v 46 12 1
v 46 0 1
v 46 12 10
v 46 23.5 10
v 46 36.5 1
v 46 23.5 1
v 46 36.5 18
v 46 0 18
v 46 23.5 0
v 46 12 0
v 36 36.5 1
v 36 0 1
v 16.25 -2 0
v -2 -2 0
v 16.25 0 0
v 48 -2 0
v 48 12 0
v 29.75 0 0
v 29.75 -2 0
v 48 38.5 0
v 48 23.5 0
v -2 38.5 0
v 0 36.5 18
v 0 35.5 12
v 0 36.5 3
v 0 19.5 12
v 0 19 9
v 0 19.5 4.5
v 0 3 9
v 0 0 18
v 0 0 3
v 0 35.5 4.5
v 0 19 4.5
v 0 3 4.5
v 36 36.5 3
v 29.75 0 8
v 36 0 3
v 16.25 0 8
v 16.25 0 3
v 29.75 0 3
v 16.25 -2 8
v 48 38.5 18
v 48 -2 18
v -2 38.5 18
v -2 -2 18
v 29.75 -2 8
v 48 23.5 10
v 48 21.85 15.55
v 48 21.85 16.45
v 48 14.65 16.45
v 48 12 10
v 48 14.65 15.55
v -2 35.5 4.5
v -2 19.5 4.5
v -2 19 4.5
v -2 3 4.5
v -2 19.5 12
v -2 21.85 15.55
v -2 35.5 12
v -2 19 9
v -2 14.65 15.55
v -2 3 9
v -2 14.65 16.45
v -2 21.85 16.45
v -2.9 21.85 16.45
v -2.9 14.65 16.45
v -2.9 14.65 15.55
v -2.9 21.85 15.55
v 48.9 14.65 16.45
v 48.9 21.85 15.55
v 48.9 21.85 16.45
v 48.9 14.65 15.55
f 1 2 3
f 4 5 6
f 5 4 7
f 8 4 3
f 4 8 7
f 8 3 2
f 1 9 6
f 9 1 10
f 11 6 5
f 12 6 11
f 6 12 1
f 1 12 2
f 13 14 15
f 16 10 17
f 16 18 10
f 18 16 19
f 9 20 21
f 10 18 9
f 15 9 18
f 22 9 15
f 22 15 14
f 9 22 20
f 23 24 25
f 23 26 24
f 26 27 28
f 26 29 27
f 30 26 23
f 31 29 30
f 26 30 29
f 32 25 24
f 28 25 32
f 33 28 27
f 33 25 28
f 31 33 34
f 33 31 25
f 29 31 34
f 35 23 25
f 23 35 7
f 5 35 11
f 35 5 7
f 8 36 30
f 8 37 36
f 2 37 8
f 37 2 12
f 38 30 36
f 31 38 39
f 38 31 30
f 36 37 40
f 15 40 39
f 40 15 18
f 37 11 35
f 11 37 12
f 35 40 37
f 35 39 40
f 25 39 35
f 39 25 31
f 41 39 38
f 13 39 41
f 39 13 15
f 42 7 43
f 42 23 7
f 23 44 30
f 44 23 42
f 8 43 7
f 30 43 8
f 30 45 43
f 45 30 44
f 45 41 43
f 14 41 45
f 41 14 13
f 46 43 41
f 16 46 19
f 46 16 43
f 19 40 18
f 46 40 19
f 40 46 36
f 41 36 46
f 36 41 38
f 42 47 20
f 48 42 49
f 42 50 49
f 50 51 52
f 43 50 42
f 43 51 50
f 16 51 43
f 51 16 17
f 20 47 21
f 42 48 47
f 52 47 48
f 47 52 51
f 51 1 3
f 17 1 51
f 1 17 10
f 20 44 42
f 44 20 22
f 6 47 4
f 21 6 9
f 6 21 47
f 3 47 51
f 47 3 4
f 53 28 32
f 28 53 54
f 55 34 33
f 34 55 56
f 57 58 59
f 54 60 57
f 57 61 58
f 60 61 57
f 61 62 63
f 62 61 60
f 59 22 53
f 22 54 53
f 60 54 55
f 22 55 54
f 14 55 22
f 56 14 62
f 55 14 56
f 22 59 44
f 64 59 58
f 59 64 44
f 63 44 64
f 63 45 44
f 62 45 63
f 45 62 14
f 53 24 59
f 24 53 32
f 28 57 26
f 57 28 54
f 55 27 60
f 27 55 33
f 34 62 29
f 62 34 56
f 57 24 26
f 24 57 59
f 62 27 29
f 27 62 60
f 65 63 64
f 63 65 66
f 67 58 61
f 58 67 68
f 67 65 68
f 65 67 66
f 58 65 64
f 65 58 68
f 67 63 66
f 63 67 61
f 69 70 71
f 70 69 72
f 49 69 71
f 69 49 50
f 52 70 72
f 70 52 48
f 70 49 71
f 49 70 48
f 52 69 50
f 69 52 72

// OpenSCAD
// file: mp3_board_box_lid_dimensions.scad
board_with_card_w = 51.25;
// board_only_w is circut board only, not including protusion of USB port and microSD slot.
board_only_w = 46;
board_l = 36.5;
board_h = 1.5;

floor_below_posts = 1;
post_area_w = 10;

wall_thickness = 2;

// Wall height starts at bottom surface of board
wall_height = 15;

wall_height_full = wall_height + floor_below_posts + wall_thickness;

front_left_wall_w = 16.25;
front_right_wall_w = 16.25;
micro_usb_opening_h = 8;

right_front_wall_w = 12;
right_back_wall_w = 13;
headphone_jack_opening_h = 7;

left_front_wall_w = 3;
left_back_wall_w = 1;
usb_opening_w = 16;
usb_opening_h = 9;
microsd_opening_w = 16;
microsd_opening_h = 6;

lid_lip_h = 4;

bump_w = 1;
bump_l = 8;
bump_h = 1;
// main file
// Speaker connector posts stick down below board 2mm.

include <mp3_board_box_lid_dimensions.scad>;

// floor entire board including post area
cube([board_only_w, board_l, floor_below_posts]);

// floor vertical extension in areas other than post area
translate([0, 0, floor_below_posts]) {
    color([1, 0, 0])
    cube([board_only_w - post_area_w, board_l, wall_thickness]);
}

// front (micro USB side)
// left side of micro USB (full wall)
translate([0, -wall_thickness, 0]) {
    cube([front_left_wall_w, wall_thickness, wall_height_full]);
}
// right side of micro USB (full wall)
translate([board_only_w - front_right_wall_w, -wall_thickness, 0]) {
    cube([front_right_wall_w, wall_thickness, wall_height_full]);
}
// front wall bridge above micro USB
translate([front_left_wall_w, 0 - wall_thickness, micro_usb_opening_h]) {
    cube([board_only_w - (front_right_wall_w + front_left_wall_w), wall_thickness,
        wall_height_full - micro_usb_opening_h]);
}

// right side (headphone jack side)
// left side of jack
translate([board_only_w, -wall_thickness, 0]) {
    cube([wall_thickness, right_front_wall_w + wall_thickness, wall_height_full]);
}
// right side of jack (full wall)
translate([board_only_w, board_l - right_back_wall_w, 0]) {
    cube([wall_thickness, right_back_wall_w + wall_thickness, wall_height_full]);
}
// bridge above headphone jack
translate([board_only_w, right_front_wall_w, headphone_jack_opening_h + wall_thickness + floor_below_posts]) {
    cube([wall_thickness, board_l - right_front_wall_w - right_back_wall_w, wall_height - headphone_jack_opening_h]);
}

// back full wall
translate([0, board_l, 0]) {
    cube([board_only_w, wall_thickness, wall_height_full]);
}

// left side (USB-A and microSD) - full walls overlap the lip
// left lip (USB/SD card side) 
translate([-wall_thickness, -wall_thickness, 0]) {
    color([0, 1, 0])
    cube([wall_thickness, board_l + wall_thickness + wall_thickness,
        floor_below_posts + wall_thickness + board_h]);
}
// left side of USB
translate([-wall_thickness, board_l - left_back_wall_w, 0]) {
    cube([wall_thickness, left_back_wall_w + wall_thickness, wall_height_full]);
}
// middle between USB and microSD
translate([-wall_thickness, left_front_wall_w + microsd_opening_w, 0]) {
    cube([wall_thickness, board_l - left_back_wall_w - usb_opening_w - microsd_opening_w - left_front_wall_w,
        wall_height_full]);
}
// right side of microSD
translate([-wall_thickness, -wall_thickness, 0]) {
    cube([wall_thickness, left_front_wall_w + wall_thickness, wall_height_full]);
}

// wall above USB (overlaps uprights)
translate([-wall_thickness, board_l / 2, floor_below_posts + wall_thickness + usb_opening_h]) {
    cube([wall_thickness, board_l / 2, wall_height - usb_opening_h]);
}

// wall above microSD (overlaps uprights)
translate([-wall_thickness, 0, floor_below_posts + wall_thickness + microsd_opening_h]) {
    cube([wall_thickness, left_front_wall_w + microsd_opening_w, wall_height - microsd_opening_h]);
}

// left bump (this protusion is 90% the size of the cavity in the lid)
color([1, 0, 1])
translate([-wall_thickness - bump_w * .9,
    board_l / 2 - bump_l *.9 / 2,
    wall_height_full - lid_lip_h / 2 - bump_h * .9 / 2]) {
    cube([bump_w * .9, bump_l * .9, bump_h * .9]);
}

// right bump (this protusion is 90% the size of the cavity in the lid)
color([1, 0, 1])
translate([board_only_w + wall_thickness,
    board_l / 2 - bump_l *.9 / 2,
    wall_height_full - lid_lip_h / 2 - bump_h * .9 / 2]) {
    cube([bump_w * .9, bump_l * .9, bump_h * .9]);
}
